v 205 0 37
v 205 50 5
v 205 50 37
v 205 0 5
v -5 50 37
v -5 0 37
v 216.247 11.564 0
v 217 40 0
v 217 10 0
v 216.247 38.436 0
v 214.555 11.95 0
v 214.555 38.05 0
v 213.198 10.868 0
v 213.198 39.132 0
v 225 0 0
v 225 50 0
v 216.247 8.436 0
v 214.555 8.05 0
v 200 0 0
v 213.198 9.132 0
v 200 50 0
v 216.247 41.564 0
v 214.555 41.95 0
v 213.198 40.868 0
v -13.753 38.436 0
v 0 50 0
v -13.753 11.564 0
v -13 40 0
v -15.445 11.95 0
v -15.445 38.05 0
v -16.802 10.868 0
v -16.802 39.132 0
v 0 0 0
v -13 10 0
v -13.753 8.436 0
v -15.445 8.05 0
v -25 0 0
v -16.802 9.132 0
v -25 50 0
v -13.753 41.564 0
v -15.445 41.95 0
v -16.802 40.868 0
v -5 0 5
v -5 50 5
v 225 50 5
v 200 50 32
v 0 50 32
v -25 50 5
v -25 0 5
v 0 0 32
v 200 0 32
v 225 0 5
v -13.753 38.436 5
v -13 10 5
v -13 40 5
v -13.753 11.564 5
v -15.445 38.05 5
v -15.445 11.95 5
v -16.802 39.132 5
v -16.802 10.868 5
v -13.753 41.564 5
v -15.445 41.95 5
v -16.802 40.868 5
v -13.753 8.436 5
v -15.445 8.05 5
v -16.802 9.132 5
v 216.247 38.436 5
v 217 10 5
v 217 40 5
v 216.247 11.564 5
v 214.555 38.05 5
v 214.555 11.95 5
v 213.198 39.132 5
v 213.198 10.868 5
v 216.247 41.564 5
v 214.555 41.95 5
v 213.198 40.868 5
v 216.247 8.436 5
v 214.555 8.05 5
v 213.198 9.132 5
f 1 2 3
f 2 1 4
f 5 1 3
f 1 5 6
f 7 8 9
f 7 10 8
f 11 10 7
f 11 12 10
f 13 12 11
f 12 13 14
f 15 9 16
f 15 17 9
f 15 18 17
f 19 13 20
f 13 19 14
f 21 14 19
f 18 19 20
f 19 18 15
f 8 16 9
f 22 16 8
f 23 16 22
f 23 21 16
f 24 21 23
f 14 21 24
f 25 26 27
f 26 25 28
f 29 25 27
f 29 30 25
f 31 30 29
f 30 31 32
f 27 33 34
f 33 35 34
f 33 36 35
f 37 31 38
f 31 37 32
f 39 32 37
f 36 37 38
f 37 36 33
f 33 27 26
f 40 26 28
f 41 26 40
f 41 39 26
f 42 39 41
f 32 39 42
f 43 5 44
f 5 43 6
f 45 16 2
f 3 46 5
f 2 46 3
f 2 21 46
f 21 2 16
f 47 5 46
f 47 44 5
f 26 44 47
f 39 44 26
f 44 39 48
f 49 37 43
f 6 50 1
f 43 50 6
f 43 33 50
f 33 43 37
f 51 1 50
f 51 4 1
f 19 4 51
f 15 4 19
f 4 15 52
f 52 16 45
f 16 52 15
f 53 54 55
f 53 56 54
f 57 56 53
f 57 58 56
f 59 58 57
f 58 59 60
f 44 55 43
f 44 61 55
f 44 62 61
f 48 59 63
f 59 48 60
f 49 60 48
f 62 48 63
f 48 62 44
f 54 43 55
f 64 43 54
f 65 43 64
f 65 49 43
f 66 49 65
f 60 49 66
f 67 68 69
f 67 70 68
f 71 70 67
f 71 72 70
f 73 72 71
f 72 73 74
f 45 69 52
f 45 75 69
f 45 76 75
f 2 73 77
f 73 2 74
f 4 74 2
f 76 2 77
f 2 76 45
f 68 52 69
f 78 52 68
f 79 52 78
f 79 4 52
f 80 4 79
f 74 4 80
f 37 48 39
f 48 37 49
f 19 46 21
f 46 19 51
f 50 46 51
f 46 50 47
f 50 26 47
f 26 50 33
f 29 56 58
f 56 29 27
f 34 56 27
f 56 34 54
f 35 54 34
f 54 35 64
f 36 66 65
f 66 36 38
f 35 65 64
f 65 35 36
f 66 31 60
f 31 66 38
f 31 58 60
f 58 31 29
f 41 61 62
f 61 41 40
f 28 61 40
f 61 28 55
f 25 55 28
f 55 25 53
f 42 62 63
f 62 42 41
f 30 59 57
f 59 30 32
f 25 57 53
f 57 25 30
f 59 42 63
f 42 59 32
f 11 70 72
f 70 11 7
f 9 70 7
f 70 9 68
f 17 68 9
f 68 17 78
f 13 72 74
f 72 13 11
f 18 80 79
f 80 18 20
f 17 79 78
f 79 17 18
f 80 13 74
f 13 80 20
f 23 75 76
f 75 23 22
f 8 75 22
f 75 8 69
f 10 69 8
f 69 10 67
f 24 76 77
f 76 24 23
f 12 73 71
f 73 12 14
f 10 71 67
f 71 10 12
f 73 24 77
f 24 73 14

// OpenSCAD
w=200;
d=73;
d=50;
h=32;
r=2;

t=5;
l=20;

difference(){
    union(){
        translate([-t,0,0])cube([w+t+t,d,h+t]);
        translate([-t-l,0,0])cube([w+t+t+l+l,d,t]);
    }
    cube([w,d,h]);
    translate([-t-l/2,l/2,0])cylinder(r=r,h=t);
    translate([-t-l/2,d-l/2,0])cylinder(r=r,h=t);
    translate([w+t+l/2,l/2,0])cylinder(r=r,h=t);
    translate([w+t+l/2,d-l/2,0])cylinder(r=r,h=t);
}
